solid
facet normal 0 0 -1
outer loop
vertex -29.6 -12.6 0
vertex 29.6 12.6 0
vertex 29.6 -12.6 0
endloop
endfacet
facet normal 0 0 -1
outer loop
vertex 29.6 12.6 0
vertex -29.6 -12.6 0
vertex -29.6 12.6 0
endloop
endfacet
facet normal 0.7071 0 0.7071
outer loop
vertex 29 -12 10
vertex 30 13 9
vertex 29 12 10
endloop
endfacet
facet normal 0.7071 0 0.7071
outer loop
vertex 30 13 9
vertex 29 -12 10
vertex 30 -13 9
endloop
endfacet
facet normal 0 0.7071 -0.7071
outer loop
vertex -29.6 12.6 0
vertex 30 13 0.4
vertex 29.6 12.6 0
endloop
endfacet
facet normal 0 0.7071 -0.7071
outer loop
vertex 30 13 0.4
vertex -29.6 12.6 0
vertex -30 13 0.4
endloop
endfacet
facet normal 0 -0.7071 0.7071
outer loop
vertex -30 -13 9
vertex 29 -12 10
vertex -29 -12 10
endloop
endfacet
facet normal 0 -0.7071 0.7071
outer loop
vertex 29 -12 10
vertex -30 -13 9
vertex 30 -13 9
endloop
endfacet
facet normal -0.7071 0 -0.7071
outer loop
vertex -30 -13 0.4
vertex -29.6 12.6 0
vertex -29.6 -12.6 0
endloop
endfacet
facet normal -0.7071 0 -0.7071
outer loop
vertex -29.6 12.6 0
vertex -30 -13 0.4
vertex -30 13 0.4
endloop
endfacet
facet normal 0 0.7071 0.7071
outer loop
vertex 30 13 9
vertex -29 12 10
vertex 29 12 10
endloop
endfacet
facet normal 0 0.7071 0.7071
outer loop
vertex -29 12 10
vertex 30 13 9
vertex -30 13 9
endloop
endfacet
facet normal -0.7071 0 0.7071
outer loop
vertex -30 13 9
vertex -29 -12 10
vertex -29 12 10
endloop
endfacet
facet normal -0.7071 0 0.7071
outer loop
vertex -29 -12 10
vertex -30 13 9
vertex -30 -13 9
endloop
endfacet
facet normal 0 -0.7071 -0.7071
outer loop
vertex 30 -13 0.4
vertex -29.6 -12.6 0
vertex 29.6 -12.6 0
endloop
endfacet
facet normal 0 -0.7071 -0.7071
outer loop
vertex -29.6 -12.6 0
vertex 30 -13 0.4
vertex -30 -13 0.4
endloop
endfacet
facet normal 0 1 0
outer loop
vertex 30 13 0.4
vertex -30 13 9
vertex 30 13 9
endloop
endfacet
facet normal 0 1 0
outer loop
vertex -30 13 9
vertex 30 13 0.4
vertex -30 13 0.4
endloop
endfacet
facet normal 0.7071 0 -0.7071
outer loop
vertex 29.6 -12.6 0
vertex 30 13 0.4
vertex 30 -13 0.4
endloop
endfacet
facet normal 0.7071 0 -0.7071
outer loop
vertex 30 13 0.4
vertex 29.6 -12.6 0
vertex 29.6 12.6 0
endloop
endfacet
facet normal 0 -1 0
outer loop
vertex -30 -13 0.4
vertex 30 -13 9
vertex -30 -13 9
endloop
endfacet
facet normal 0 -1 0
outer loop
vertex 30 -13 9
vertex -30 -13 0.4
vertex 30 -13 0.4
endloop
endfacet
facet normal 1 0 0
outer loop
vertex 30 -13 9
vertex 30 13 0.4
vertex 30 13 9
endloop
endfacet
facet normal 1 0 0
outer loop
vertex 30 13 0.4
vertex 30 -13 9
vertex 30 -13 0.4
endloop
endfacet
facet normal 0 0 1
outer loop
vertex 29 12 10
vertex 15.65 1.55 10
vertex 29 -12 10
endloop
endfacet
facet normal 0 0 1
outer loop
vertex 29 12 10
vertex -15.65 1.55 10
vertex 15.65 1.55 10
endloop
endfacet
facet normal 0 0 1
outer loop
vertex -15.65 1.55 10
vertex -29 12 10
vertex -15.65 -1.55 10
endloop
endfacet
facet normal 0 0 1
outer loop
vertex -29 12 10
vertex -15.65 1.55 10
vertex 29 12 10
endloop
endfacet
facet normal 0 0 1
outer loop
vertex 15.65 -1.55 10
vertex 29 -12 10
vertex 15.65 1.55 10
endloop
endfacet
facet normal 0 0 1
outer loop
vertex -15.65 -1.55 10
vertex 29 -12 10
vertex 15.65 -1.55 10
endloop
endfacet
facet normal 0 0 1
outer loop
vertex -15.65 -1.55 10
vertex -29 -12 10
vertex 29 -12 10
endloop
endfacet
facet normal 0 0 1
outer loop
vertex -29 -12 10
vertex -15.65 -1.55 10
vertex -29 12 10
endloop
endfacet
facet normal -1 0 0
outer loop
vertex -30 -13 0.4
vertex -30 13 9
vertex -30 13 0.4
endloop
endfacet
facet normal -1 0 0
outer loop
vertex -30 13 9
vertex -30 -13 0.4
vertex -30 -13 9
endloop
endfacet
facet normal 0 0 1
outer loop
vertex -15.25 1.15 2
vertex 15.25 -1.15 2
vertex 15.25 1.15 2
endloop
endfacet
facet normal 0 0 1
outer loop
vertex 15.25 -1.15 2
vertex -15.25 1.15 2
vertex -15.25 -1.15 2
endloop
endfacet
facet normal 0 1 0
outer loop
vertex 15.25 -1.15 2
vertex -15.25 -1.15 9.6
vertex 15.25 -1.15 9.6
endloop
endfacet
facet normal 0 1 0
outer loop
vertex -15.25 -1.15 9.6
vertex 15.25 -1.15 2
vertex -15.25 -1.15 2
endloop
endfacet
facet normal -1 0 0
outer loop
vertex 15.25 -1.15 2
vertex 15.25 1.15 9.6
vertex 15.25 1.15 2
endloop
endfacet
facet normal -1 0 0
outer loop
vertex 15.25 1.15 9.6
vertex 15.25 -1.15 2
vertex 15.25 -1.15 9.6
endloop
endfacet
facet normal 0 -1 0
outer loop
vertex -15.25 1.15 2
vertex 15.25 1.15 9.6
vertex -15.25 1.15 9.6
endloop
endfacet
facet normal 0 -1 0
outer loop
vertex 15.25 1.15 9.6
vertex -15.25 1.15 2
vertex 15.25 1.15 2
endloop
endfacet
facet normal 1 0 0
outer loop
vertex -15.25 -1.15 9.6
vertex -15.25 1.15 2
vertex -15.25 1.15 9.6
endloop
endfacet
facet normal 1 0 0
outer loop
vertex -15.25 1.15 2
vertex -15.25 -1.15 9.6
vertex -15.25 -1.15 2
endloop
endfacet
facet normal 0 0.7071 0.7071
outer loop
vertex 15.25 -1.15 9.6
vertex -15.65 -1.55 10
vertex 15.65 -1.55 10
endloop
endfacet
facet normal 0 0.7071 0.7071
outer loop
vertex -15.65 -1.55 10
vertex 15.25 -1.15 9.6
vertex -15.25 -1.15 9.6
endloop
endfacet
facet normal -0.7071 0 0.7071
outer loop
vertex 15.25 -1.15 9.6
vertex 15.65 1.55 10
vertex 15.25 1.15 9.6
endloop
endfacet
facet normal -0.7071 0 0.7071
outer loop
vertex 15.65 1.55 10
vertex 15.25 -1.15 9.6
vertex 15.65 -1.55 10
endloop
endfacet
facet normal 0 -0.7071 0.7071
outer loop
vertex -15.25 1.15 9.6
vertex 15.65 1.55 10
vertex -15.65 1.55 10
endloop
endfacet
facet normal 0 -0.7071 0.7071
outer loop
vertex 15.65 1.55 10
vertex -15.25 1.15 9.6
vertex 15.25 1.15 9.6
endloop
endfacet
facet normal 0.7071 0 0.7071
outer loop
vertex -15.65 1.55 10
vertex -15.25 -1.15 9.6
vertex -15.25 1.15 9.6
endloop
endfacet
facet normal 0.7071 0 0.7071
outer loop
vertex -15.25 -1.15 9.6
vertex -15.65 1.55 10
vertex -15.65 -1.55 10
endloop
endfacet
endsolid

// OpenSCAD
// stand.scad - universal stand (design_brief.md 4.15): holds any part with the
// standard 30 x 8 x 2.0 mm tab upright. Single colour, prints flat on its base.
// Part 60 x 26 x 10 mm, slot 30.5 x 2.3 mm, 8 mm deep on a 2 mm floor.
include <common.scad>

size           = stand_size;         // [60, 26, 10]
clearance      = slot_clearance;     // shared fit values from common.scad, 0.3 and 0.5
end_clearance  = slot_end_clearance; // until the stage 1 test print sets them
slot_length    = tab_l + end_clearance;   // 30.5
slot_depth     = slot_d;             // 8, leaves the 2 mm floor
entry_chamfer  = slot_chamfer;       // 0.4
top_chamfer    = stand_chamfer_top;  // 1.0
bottom_chamfer = chamfer_bottom;     // 0.4

module stand() {
    band_colour(1) difference() {
        chamfered_box(size, cb = bottom_chamfer, ct = top_chamfer);
        slot_cut(top = size[2], l = slot_length, w = tab_t + clearance, d = slot_depth, entry = entry_chamfer);
    }
}

stand();
